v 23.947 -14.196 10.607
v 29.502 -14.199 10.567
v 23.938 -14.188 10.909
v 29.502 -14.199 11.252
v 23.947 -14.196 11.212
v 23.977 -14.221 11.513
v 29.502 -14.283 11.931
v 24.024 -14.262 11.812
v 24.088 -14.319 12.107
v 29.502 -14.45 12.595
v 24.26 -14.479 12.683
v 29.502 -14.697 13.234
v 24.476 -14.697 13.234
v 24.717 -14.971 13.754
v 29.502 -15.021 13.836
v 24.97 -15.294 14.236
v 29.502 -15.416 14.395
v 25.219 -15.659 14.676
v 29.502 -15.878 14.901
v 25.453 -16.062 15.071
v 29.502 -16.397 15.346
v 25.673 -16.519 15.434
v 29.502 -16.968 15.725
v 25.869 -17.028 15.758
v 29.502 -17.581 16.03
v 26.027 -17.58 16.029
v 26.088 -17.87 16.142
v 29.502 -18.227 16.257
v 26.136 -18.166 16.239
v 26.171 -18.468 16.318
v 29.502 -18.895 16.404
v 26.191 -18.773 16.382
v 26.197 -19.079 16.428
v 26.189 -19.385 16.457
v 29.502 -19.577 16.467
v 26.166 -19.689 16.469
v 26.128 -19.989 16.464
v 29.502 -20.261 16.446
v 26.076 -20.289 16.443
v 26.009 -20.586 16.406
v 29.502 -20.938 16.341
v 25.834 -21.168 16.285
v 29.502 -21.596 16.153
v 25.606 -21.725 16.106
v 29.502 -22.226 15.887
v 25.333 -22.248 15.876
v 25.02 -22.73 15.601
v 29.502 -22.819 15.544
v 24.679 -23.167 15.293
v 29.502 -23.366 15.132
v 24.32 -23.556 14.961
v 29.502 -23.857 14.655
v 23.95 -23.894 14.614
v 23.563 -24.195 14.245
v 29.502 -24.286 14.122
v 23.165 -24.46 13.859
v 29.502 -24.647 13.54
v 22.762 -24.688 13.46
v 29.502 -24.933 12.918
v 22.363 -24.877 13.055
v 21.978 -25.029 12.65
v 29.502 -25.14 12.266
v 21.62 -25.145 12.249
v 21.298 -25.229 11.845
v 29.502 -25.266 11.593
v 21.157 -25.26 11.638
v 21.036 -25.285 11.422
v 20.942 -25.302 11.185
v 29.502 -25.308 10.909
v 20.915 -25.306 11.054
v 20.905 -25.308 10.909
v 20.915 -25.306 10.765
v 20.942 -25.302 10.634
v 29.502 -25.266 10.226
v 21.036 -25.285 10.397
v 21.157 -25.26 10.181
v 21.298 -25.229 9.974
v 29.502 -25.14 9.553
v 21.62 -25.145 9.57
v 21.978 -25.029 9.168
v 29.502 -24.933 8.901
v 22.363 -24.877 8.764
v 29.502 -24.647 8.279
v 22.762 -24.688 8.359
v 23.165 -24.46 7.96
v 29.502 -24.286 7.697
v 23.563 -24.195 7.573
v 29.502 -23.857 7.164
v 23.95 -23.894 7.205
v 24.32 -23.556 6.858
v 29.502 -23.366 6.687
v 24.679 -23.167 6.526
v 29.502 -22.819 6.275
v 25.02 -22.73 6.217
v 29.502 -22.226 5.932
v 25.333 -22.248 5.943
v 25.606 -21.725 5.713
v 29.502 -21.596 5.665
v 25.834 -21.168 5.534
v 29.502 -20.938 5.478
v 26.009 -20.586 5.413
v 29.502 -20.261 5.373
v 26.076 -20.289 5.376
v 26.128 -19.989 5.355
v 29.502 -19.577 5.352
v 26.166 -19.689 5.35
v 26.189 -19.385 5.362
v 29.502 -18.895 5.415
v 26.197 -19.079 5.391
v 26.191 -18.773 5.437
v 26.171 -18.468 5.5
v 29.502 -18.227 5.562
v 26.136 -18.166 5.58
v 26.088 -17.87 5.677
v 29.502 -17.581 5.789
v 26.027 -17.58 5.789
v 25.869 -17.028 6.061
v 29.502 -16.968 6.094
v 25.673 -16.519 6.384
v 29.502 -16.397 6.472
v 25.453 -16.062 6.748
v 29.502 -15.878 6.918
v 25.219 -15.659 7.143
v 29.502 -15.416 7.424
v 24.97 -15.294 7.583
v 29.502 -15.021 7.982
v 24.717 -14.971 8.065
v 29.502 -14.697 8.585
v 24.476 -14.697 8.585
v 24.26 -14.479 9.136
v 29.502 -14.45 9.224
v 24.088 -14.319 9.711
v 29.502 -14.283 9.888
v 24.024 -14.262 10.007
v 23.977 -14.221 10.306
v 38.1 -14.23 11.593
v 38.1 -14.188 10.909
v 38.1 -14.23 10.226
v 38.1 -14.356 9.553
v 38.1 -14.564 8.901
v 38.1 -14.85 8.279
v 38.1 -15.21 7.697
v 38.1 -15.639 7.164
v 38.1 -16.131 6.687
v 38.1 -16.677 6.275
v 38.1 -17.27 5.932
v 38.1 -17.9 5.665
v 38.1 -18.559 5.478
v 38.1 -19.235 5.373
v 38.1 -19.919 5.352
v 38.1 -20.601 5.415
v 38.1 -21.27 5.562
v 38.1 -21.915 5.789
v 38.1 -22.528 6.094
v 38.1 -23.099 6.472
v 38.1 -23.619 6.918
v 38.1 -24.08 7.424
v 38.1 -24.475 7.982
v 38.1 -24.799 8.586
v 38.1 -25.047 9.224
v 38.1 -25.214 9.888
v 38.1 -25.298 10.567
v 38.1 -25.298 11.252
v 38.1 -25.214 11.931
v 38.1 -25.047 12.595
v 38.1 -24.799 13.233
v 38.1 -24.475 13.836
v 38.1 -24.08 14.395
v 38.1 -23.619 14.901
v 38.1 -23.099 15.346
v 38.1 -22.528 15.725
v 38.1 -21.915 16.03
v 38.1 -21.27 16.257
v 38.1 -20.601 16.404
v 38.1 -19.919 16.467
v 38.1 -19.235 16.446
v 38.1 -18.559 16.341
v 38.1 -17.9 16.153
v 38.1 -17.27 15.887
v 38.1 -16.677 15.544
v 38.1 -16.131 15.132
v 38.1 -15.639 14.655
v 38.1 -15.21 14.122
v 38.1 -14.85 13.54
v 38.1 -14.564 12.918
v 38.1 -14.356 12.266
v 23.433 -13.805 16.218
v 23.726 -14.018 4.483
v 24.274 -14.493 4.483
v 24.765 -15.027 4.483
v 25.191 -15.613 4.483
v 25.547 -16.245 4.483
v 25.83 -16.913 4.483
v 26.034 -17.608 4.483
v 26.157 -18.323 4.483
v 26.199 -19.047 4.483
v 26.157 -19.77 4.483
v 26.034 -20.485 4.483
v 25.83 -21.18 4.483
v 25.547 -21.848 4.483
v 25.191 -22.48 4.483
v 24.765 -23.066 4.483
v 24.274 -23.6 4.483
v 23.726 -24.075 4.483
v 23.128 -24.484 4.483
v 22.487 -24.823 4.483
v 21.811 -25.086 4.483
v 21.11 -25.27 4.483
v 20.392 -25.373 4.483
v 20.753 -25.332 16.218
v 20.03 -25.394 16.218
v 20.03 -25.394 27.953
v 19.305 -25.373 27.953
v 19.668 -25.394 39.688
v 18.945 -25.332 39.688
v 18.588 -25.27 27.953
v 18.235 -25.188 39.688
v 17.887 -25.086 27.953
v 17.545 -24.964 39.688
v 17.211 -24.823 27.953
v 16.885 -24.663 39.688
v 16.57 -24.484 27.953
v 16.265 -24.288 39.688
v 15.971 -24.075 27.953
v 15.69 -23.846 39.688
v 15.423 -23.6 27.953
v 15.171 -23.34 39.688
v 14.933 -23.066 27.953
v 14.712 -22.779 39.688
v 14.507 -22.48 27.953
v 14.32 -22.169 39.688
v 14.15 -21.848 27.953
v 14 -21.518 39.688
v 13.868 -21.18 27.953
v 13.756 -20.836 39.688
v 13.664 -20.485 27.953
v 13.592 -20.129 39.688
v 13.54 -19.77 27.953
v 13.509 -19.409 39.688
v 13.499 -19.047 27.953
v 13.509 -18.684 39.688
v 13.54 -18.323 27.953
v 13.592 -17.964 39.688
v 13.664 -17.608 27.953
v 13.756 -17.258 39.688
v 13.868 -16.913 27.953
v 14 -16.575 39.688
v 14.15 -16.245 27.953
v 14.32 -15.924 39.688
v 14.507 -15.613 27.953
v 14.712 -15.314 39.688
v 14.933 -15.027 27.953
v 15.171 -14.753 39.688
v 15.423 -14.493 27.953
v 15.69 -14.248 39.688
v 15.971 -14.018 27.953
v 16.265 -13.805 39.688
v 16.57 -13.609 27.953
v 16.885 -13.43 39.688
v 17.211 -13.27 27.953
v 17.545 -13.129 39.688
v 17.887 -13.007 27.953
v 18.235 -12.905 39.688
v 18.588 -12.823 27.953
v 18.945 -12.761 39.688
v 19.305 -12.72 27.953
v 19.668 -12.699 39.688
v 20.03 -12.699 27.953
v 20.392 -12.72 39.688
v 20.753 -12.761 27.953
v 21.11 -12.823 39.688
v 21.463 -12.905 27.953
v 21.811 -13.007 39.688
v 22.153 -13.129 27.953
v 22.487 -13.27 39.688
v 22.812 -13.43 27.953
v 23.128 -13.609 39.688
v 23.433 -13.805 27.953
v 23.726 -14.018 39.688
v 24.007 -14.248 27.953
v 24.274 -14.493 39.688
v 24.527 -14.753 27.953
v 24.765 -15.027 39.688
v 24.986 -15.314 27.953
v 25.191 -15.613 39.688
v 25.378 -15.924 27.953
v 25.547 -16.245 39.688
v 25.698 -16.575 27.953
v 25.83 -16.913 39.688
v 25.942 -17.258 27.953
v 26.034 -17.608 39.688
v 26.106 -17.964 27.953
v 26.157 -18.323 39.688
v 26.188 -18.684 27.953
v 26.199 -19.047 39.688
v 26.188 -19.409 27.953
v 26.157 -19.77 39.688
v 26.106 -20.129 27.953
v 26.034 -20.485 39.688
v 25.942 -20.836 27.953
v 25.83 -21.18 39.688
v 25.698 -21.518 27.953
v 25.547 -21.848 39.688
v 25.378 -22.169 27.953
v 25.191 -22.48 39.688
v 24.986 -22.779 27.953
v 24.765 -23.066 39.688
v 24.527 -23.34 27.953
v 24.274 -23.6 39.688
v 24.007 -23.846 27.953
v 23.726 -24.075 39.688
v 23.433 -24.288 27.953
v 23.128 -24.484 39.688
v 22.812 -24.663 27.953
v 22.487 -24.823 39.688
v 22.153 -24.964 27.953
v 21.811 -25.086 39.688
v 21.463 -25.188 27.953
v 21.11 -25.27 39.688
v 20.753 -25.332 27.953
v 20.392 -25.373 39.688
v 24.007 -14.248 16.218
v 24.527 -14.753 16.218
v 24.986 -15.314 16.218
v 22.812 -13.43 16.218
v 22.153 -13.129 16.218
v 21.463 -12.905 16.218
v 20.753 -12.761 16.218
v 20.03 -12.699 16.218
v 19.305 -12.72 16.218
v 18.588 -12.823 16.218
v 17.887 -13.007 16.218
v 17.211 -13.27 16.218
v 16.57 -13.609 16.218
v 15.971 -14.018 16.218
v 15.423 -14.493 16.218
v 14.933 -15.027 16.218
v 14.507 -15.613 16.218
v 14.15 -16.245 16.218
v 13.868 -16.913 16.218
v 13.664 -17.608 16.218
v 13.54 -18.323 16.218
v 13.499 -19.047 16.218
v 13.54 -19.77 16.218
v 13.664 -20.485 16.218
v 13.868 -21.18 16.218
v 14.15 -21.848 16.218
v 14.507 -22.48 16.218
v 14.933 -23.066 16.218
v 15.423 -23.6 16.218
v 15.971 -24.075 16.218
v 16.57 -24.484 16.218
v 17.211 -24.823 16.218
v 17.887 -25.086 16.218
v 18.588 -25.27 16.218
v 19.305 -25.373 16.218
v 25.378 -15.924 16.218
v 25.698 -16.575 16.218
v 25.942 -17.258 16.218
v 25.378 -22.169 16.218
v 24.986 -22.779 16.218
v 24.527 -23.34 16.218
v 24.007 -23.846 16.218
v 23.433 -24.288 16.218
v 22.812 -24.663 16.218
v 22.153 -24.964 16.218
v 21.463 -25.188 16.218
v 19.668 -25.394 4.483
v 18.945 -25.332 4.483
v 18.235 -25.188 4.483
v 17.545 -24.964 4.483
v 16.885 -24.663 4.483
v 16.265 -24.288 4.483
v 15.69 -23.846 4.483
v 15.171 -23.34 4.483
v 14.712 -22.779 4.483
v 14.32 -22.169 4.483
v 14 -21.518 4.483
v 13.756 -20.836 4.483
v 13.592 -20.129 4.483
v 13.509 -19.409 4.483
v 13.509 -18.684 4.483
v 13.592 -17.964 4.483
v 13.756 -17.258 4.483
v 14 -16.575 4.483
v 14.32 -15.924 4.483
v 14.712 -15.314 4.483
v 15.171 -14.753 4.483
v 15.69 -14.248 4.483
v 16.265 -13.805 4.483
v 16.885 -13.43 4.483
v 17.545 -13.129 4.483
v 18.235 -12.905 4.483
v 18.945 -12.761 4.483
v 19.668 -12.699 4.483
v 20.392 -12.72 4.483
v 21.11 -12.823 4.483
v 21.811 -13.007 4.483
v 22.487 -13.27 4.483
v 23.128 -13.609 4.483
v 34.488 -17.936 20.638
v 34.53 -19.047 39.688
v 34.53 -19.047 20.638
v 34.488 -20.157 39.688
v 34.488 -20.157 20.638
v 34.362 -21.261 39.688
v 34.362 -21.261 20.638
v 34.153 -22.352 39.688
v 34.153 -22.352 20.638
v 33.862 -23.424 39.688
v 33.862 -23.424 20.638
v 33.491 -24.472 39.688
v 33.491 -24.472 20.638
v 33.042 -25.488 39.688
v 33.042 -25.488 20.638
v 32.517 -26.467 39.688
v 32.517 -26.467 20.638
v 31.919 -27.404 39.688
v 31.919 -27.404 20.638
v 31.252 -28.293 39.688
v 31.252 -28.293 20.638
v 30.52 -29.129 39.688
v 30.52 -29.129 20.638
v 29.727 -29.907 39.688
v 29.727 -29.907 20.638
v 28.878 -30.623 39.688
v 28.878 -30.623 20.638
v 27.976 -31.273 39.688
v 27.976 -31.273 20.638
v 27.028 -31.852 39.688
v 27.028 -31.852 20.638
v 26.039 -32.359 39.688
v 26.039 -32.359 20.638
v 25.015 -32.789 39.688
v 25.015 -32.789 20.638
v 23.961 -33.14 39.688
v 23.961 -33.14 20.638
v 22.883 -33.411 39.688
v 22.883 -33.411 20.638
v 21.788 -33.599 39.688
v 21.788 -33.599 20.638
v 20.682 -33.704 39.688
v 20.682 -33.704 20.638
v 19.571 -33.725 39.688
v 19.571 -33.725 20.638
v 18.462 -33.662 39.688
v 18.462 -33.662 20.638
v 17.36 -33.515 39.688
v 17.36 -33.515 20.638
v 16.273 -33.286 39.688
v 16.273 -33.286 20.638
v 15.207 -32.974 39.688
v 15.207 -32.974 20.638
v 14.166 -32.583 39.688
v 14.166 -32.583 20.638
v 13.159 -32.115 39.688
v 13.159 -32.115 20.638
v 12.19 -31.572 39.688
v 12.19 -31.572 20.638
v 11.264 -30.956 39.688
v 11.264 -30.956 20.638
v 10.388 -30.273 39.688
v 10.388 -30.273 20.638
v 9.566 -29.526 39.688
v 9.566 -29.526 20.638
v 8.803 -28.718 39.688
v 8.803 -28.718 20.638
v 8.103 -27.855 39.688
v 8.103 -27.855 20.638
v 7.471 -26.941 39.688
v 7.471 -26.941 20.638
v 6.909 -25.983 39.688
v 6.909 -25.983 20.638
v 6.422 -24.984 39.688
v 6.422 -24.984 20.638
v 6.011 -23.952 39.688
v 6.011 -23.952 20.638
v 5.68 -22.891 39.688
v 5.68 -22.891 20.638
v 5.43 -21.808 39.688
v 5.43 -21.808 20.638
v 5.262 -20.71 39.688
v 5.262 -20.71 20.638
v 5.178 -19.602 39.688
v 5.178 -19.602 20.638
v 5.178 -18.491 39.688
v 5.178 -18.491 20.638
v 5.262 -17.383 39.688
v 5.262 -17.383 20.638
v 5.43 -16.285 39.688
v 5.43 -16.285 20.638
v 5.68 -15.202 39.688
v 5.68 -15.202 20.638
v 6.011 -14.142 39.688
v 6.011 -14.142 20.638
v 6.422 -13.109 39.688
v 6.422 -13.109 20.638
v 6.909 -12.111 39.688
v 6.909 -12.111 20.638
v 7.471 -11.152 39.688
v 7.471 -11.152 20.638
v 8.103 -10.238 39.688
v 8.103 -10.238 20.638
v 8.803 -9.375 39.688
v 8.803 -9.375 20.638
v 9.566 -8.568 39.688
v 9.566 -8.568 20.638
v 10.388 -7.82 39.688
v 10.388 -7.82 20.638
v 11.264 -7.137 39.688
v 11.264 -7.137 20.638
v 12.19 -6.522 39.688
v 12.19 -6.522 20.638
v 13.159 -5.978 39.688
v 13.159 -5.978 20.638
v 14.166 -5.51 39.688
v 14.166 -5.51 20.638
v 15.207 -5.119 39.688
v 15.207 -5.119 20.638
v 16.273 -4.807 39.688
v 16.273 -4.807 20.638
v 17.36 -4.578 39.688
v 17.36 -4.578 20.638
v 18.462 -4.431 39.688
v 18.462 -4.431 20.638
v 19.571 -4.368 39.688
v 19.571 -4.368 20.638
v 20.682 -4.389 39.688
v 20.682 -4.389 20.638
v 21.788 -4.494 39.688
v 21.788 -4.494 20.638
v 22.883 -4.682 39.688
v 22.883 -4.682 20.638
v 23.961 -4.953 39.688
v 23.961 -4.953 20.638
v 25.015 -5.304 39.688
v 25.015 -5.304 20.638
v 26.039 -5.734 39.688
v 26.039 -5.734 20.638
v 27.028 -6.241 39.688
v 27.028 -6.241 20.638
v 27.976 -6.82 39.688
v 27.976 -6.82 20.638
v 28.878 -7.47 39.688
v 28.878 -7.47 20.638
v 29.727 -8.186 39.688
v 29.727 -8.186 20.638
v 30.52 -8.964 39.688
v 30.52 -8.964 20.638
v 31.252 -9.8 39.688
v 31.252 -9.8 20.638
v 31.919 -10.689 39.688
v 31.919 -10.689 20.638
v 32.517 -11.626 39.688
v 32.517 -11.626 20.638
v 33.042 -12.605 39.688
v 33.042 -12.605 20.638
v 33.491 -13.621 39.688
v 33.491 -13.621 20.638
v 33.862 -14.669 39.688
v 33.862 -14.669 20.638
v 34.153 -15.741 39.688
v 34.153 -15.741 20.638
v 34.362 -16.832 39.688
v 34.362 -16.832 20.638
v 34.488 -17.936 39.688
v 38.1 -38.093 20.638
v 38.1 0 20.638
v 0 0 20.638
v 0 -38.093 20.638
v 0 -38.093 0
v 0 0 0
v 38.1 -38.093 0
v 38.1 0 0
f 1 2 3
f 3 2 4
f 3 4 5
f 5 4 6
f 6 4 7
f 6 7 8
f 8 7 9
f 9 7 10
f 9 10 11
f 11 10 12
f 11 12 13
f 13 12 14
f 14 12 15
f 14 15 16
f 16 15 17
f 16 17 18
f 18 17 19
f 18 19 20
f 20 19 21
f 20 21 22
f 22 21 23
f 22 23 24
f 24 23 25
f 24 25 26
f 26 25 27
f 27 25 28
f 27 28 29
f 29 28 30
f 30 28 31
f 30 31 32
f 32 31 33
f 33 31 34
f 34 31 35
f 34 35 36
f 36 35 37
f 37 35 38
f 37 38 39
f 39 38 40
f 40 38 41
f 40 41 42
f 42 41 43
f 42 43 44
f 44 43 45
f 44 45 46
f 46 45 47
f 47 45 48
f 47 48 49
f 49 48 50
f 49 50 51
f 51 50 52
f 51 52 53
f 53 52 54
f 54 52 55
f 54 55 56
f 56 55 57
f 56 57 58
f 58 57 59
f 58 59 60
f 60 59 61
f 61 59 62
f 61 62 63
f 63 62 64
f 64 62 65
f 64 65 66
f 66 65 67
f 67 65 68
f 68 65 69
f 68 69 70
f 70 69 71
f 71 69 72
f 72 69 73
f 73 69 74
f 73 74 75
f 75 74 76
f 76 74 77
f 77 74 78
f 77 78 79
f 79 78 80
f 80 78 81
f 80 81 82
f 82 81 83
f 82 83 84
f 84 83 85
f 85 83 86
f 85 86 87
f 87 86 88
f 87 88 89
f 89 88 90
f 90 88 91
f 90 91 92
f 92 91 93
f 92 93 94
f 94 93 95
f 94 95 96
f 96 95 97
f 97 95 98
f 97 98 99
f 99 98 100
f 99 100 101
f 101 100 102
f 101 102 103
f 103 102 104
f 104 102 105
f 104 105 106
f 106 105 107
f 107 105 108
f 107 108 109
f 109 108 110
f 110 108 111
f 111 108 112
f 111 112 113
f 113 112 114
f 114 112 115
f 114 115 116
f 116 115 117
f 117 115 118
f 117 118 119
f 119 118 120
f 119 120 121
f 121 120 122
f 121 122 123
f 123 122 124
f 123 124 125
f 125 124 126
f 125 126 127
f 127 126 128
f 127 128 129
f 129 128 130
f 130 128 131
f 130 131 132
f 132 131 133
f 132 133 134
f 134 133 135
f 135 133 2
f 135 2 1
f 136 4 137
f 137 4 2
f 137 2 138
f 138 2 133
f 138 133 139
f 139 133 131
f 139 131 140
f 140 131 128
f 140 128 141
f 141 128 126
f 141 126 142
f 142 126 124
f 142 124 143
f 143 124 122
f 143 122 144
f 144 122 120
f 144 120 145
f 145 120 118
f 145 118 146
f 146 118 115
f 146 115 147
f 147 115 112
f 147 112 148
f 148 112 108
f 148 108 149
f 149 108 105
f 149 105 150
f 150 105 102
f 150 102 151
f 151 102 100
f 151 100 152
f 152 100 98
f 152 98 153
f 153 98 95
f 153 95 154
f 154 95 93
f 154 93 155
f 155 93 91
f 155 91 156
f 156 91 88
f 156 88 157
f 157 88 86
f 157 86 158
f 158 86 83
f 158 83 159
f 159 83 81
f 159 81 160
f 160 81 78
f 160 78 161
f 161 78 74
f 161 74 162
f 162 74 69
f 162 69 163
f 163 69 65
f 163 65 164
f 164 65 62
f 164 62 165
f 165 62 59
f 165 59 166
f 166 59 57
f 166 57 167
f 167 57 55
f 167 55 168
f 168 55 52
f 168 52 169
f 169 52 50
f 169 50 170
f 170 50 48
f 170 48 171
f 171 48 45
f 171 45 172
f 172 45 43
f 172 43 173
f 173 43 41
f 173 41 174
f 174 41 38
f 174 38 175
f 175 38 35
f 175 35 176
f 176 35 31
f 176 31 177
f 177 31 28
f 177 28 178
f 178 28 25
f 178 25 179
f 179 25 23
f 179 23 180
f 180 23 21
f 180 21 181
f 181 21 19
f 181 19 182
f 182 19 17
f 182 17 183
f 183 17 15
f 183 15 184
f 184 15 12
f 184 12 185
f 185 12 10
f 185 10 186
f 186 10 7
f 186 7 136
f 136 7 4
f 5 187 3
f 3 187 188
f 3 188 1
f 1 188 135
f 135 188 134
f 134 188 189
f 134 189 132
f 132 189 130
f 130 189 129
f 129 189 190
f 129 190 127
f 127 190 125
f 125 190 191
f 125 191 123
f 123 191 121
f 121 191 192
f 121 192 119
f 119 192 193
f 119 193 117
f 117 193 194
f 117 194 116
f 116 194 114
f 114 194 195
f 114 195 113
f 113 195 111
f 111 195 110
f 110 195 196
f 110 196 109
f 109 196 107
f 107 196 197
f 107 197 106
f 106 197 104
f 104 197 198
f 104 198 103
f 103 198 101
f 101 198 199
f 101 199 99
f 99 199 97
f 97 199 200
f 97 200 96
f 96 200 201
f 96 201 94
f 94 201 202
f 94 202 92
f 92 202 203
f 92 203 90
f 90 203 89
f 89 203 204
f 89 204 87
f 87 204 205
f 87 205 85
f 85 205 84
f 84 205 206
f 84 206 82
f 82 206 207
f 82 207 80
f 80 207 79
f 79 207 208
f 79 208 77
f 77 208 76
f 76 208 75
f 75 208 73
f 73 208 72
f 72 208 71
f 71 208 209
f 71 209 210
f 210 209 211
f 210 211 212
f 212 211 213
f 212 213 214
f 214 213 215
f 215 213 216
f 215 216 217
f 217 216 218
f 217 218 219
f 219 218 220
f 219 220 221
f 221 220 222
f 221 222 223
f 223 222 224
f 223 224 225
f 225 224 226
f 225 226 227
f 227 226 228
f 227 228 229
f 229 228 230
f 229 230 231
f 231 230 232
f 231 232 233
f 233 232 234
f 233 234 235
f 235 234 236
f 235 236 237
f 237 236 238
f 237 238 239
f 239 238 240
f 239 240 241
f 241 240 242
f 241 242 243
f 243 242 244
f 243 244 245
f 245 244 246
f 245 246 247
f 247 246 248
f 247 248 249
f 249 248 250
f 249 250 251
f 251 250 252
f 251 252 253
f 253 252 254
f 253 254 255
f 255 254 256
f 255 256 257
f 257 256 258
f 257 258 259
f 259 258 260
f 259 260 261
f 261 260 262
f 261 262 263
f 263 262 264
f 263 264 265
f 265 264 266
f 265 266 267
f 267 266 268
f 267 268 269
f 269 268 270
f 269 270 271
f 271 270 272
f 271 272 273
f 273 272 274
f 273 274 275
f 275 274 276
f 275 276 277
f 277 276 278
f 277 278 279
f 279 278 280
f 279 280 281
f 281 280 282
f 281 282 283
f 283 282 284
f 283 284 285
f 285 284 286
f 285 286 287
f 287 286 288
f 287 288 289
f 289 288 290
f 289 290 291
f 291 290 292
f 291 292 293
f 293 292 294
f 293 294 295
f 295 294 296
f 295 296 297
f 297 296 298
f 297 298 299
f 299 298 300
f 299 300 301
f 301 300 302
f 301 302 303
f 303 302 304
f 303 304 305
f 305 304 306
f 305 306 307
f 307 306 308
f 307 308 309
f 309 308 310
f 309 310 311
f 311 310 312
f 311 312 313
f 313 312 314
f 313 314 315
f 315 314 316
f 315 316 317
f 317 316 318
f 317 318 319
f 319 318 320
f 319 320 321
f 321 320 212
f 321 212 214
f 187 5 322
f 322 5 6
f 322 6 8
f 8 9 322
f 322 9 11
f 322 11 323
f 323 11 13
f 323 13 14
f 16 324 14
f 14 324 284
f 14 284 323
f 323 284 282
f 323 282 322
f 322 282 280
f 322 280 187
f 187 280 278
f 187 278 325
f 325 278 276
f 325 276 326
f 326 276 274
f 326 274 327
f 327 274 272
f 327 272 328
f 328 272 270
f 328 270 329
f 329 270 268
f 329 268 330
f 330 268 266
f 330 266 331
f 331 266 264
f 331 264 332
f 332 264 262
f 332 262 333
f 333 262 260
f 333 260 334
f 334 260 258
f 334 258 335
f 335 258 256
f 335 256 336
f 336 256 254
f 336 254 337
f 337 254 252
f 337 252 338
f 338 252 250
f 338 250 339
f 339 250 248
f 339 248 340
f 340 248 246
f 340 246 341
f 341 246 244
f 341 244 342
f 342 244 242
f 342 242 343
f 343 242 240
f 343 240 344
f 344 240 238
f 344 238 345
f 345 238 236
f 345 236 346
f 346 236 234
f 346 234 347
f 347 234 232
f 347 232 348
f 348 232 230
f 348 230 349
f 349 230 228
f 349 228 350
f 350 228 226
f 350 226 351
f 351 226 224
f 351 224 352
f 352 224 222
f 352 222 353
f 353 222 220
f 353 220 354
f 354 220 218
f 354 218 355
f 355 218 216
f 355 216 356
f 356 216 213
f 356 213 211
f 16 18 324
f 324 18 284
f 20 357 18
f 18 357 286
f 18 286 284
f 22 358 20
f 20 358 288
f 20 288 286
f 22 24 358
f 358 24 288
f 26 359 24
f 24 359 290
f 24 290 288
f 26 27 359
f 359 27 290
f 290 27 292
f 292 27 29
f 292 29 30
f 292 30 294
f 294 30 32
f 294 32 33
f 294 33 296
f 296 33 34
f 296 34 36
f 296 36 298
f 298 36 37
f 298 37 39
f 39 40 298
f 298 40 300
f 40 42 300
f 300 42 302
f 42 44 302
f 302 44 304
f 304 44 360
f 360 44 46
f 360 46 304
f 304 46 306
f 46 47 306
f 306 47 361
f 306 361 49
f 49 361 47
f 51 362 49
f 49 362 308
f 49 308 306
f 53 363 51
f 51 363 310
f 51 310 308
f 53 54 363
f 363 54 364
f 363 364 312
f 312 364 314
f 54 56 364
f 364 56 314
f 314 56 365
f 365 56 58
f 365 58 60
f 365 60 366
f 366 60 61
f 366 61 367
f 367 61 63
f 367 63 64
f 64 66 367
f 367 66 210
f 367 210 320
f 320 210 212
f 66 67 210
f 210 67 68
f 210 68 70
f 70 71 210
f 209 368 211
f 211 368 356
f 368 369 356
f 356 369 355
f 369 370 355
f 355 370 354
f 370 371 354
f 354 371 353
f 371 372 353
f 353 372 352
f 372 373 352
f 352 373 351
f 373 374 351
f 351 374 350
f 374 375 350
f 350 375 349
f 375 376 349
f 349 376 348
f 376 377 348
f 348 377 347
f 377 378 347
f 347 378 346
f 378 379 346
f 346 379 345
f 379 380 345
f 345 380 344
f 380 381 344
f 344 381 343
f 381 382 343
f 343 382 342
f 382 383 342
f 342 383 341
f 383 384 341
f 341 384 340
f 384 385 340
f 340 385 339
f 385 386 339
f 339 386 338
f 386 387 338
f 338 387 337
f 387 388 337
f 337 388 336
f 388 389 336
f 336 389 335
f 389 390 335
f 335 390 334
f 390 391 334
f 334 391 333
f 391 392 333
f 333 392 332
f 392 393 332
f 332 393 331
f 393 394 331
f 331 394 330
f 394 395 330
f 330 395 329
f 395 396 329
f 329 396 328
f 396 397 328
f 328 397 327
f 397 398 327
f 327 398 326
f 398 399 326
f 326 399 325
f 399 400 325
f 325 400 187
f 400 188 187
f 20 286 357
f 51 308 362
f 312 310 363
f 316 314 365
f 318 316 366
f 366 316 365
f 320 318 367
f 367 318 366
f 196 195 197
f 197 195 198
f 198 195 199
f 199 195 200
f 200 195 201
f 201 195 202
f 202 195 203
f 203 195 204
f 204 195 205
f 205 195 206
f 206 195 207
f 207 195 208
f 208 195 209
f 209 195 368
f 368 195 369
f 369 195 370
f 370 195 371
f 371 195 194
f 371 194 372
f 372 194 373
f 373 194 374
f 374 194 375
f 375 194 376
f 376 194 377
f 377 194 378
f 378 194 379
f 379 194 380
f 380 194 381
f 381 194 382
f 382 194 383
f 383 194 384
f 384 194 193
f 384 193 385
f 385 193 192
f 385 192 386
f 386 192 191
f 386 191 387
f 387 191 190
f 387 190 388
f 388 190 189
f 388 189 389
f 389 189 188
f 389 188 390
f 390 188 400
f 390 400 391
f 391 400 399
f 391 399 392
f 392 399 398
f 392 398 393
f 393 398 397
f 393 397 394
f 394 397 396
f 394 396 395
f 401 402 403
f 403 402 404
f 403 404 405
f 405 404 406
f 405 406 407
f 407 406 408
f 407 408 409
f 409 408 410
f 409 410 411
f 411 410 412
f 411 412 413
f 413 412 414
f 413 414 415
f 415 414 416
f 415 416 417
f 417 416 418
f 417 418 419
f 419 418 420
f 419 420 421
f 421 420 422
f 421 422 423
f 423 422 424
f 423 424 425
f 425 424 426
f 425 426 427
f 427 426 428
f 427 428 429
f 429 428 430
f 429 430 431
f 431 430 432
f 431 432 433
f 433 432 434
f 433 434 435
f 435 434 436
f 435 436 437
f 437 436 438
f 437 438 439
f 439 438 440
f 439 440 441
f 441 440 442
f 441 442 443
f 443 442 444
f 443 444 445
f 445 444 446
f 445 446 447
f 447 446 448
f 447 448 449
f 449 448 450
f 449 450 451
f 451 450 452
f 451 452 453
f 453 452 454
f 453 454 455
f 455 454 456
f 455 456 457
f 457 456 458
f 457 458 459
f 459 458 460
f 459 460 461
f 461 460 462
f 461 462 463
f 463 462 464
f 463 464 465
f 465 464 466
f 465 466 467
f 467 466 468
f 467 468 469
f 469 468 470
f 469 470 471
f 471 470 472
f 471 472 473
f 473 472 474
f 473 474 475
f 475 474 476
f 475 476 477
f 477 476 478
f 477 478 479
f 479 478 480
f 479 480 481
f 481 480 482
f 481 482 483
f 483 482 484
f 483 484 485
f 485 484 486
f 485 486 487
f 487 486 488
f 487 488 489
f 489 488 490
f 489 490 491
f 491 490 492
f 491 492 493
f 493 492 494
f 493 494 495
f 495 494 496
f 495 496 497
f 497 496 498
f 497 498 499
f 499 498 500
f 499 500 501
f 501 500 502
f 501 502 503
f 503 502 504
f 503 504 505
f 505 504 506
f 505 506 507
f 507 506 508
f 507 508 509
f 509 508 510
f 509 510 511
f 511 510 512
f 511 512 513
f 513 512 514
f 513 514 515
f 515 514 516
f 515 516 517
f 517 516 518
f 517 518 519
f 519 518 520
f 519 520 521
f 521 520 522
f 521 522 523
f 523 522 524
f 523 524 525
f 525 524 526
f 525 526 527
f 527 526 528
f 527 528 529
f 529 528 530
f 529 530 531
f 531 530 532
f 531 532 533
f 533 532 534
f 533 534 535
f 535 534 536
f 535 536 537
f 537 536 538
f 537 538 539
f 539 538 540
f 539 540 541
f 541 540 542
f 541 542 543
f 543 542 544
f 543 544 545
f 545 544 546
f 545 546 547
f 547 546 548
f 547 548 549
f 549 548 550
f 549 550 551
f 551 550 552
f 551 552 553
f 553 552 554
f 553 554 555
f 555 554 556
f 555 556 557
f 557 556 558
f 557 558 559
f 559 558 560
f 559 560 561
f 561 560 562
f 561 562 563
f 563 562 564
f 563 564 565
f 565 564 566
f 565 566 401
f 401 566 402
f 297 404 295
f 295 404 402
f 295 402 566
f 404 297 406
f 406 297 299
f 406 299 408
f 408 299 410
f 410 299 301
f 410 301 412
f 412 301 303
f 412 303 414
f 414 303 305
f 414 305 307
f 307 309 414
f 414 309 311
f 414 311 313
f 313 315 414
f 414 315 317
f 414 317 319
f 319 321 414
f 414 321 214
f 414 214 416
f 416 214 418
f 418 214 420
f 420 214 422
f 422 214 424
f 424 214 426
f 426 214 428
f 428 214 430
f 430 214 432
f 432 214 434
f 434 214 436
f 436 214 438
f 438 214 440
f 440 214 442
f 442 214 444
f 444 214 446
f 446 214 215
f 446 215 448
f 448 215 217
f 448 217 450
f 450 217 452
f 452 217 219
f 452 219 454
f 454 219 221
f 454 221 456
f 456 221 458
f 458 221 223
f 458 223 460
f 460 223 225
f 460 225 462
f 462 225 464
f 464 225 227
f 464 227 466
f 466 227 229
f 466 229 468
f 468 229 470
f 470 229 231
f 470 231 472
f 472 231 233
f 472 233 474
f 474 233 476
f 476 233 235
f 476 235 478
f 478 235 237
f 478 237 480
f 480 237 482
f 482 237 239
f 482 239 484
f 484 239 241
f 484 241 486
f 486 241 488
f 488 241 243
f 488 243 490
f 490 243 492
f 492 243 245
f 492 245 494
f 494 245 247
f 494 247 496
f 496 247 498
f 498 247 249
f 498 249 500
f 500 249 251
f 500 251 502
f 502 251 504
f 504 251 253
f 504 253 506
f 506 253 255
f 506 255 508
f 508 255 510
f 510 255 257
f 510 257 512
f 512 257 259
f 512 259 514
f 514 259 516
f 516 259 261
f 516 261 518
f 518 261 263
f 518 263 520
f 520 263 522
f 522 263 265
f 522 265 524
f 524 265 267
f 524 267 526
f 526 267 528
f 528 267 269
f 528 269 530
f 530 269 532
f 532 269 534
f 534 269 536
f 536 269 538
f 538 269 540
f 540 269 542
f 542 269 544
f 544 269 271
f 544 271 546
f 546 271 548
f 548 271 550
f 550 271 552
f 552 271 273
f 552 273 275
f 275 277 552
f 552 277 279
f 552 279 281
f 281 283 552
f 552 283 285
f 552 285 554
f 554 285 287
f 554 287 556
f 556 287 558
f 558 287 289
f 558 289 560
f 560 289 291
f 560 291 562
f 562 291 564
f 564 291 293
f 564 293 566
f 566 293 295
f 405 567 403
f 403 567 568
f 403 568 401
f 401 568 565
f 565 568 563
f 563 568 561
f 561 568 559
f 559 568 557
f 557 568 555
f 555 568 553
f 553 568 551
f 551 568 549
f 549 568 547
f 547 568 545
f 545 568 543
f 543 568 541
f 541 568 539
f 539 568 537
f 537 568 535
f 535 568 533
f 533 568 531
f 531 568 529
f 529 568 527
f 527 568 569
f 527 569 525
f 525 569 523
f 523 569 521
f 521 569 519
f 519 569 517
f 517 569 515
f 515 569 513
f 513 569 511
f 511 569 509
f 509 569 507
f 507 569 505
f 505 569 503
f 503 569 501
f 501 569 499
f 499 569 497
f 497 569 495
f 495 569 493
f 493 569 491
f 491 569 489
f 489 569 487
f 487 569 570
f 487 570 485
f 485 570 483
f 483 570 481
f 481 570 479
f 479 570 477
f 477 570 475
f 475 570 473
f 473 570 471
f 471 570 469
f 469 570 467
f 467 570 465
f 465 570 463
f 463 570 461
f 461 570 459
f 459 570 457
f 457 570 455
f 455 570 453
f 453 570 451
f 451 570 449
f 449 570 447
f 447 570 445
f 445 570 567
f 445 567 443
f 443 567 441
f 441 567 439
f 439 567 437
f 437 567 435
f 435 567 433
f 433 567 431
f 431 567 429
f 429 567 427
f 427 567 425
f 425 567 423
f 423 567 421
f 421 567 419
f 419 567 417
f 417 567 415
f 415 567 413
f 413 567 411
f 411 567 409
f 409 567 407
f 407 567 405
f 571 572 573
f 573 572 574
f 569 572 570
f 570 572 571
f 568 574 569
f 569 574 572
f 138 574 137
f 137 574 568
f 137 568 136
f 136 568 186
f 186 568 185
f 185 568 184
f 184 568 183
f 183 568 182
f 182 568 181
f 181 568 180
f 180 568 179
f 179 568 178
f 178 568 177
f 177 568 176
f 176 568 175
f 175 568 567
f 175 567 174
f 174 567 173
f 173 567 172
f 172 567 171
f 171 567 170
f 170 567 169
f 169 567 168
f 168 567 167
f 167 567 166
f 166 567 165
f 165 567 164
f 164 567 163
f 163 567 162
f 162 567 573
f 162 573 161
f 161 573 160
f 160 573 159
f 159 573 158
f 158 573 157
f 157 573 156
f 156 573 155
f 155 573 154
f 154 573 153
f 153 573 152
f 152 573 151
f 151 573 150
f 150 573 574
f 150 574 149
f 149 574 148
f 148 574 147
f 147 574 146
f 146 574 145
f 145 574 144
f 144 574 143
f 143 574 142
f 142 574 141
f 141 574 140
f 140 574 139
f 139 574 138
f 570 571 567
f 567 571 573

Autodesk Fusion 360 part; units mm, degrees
box "BoxPrimitive1" add length 38.0931 width 38.1 height 20.6375 placed x (0, -1, 0) y (1, 0, 0) z (0, 0, 1) at (0, 0, 0)
cylinder "CylinderPrimitive1" add diameter 29.3624 height 19.05 placed x (1, 0, 0) y (0, 1, 0) z (0, 0, 1) at (19.8488, -19.0466, 20.6375)
hole "Hole1" at (19.8488, -19.0466, 39.6875) direction (0, 0, -1) diameter 12.7 depth 35.2044 tip angle 180
hole "Hole2" at (38.1, -19.7481, 10.9094) direction (-1, 0, 0) diameter 11.1201 depth 18.1864 tip angle 180
